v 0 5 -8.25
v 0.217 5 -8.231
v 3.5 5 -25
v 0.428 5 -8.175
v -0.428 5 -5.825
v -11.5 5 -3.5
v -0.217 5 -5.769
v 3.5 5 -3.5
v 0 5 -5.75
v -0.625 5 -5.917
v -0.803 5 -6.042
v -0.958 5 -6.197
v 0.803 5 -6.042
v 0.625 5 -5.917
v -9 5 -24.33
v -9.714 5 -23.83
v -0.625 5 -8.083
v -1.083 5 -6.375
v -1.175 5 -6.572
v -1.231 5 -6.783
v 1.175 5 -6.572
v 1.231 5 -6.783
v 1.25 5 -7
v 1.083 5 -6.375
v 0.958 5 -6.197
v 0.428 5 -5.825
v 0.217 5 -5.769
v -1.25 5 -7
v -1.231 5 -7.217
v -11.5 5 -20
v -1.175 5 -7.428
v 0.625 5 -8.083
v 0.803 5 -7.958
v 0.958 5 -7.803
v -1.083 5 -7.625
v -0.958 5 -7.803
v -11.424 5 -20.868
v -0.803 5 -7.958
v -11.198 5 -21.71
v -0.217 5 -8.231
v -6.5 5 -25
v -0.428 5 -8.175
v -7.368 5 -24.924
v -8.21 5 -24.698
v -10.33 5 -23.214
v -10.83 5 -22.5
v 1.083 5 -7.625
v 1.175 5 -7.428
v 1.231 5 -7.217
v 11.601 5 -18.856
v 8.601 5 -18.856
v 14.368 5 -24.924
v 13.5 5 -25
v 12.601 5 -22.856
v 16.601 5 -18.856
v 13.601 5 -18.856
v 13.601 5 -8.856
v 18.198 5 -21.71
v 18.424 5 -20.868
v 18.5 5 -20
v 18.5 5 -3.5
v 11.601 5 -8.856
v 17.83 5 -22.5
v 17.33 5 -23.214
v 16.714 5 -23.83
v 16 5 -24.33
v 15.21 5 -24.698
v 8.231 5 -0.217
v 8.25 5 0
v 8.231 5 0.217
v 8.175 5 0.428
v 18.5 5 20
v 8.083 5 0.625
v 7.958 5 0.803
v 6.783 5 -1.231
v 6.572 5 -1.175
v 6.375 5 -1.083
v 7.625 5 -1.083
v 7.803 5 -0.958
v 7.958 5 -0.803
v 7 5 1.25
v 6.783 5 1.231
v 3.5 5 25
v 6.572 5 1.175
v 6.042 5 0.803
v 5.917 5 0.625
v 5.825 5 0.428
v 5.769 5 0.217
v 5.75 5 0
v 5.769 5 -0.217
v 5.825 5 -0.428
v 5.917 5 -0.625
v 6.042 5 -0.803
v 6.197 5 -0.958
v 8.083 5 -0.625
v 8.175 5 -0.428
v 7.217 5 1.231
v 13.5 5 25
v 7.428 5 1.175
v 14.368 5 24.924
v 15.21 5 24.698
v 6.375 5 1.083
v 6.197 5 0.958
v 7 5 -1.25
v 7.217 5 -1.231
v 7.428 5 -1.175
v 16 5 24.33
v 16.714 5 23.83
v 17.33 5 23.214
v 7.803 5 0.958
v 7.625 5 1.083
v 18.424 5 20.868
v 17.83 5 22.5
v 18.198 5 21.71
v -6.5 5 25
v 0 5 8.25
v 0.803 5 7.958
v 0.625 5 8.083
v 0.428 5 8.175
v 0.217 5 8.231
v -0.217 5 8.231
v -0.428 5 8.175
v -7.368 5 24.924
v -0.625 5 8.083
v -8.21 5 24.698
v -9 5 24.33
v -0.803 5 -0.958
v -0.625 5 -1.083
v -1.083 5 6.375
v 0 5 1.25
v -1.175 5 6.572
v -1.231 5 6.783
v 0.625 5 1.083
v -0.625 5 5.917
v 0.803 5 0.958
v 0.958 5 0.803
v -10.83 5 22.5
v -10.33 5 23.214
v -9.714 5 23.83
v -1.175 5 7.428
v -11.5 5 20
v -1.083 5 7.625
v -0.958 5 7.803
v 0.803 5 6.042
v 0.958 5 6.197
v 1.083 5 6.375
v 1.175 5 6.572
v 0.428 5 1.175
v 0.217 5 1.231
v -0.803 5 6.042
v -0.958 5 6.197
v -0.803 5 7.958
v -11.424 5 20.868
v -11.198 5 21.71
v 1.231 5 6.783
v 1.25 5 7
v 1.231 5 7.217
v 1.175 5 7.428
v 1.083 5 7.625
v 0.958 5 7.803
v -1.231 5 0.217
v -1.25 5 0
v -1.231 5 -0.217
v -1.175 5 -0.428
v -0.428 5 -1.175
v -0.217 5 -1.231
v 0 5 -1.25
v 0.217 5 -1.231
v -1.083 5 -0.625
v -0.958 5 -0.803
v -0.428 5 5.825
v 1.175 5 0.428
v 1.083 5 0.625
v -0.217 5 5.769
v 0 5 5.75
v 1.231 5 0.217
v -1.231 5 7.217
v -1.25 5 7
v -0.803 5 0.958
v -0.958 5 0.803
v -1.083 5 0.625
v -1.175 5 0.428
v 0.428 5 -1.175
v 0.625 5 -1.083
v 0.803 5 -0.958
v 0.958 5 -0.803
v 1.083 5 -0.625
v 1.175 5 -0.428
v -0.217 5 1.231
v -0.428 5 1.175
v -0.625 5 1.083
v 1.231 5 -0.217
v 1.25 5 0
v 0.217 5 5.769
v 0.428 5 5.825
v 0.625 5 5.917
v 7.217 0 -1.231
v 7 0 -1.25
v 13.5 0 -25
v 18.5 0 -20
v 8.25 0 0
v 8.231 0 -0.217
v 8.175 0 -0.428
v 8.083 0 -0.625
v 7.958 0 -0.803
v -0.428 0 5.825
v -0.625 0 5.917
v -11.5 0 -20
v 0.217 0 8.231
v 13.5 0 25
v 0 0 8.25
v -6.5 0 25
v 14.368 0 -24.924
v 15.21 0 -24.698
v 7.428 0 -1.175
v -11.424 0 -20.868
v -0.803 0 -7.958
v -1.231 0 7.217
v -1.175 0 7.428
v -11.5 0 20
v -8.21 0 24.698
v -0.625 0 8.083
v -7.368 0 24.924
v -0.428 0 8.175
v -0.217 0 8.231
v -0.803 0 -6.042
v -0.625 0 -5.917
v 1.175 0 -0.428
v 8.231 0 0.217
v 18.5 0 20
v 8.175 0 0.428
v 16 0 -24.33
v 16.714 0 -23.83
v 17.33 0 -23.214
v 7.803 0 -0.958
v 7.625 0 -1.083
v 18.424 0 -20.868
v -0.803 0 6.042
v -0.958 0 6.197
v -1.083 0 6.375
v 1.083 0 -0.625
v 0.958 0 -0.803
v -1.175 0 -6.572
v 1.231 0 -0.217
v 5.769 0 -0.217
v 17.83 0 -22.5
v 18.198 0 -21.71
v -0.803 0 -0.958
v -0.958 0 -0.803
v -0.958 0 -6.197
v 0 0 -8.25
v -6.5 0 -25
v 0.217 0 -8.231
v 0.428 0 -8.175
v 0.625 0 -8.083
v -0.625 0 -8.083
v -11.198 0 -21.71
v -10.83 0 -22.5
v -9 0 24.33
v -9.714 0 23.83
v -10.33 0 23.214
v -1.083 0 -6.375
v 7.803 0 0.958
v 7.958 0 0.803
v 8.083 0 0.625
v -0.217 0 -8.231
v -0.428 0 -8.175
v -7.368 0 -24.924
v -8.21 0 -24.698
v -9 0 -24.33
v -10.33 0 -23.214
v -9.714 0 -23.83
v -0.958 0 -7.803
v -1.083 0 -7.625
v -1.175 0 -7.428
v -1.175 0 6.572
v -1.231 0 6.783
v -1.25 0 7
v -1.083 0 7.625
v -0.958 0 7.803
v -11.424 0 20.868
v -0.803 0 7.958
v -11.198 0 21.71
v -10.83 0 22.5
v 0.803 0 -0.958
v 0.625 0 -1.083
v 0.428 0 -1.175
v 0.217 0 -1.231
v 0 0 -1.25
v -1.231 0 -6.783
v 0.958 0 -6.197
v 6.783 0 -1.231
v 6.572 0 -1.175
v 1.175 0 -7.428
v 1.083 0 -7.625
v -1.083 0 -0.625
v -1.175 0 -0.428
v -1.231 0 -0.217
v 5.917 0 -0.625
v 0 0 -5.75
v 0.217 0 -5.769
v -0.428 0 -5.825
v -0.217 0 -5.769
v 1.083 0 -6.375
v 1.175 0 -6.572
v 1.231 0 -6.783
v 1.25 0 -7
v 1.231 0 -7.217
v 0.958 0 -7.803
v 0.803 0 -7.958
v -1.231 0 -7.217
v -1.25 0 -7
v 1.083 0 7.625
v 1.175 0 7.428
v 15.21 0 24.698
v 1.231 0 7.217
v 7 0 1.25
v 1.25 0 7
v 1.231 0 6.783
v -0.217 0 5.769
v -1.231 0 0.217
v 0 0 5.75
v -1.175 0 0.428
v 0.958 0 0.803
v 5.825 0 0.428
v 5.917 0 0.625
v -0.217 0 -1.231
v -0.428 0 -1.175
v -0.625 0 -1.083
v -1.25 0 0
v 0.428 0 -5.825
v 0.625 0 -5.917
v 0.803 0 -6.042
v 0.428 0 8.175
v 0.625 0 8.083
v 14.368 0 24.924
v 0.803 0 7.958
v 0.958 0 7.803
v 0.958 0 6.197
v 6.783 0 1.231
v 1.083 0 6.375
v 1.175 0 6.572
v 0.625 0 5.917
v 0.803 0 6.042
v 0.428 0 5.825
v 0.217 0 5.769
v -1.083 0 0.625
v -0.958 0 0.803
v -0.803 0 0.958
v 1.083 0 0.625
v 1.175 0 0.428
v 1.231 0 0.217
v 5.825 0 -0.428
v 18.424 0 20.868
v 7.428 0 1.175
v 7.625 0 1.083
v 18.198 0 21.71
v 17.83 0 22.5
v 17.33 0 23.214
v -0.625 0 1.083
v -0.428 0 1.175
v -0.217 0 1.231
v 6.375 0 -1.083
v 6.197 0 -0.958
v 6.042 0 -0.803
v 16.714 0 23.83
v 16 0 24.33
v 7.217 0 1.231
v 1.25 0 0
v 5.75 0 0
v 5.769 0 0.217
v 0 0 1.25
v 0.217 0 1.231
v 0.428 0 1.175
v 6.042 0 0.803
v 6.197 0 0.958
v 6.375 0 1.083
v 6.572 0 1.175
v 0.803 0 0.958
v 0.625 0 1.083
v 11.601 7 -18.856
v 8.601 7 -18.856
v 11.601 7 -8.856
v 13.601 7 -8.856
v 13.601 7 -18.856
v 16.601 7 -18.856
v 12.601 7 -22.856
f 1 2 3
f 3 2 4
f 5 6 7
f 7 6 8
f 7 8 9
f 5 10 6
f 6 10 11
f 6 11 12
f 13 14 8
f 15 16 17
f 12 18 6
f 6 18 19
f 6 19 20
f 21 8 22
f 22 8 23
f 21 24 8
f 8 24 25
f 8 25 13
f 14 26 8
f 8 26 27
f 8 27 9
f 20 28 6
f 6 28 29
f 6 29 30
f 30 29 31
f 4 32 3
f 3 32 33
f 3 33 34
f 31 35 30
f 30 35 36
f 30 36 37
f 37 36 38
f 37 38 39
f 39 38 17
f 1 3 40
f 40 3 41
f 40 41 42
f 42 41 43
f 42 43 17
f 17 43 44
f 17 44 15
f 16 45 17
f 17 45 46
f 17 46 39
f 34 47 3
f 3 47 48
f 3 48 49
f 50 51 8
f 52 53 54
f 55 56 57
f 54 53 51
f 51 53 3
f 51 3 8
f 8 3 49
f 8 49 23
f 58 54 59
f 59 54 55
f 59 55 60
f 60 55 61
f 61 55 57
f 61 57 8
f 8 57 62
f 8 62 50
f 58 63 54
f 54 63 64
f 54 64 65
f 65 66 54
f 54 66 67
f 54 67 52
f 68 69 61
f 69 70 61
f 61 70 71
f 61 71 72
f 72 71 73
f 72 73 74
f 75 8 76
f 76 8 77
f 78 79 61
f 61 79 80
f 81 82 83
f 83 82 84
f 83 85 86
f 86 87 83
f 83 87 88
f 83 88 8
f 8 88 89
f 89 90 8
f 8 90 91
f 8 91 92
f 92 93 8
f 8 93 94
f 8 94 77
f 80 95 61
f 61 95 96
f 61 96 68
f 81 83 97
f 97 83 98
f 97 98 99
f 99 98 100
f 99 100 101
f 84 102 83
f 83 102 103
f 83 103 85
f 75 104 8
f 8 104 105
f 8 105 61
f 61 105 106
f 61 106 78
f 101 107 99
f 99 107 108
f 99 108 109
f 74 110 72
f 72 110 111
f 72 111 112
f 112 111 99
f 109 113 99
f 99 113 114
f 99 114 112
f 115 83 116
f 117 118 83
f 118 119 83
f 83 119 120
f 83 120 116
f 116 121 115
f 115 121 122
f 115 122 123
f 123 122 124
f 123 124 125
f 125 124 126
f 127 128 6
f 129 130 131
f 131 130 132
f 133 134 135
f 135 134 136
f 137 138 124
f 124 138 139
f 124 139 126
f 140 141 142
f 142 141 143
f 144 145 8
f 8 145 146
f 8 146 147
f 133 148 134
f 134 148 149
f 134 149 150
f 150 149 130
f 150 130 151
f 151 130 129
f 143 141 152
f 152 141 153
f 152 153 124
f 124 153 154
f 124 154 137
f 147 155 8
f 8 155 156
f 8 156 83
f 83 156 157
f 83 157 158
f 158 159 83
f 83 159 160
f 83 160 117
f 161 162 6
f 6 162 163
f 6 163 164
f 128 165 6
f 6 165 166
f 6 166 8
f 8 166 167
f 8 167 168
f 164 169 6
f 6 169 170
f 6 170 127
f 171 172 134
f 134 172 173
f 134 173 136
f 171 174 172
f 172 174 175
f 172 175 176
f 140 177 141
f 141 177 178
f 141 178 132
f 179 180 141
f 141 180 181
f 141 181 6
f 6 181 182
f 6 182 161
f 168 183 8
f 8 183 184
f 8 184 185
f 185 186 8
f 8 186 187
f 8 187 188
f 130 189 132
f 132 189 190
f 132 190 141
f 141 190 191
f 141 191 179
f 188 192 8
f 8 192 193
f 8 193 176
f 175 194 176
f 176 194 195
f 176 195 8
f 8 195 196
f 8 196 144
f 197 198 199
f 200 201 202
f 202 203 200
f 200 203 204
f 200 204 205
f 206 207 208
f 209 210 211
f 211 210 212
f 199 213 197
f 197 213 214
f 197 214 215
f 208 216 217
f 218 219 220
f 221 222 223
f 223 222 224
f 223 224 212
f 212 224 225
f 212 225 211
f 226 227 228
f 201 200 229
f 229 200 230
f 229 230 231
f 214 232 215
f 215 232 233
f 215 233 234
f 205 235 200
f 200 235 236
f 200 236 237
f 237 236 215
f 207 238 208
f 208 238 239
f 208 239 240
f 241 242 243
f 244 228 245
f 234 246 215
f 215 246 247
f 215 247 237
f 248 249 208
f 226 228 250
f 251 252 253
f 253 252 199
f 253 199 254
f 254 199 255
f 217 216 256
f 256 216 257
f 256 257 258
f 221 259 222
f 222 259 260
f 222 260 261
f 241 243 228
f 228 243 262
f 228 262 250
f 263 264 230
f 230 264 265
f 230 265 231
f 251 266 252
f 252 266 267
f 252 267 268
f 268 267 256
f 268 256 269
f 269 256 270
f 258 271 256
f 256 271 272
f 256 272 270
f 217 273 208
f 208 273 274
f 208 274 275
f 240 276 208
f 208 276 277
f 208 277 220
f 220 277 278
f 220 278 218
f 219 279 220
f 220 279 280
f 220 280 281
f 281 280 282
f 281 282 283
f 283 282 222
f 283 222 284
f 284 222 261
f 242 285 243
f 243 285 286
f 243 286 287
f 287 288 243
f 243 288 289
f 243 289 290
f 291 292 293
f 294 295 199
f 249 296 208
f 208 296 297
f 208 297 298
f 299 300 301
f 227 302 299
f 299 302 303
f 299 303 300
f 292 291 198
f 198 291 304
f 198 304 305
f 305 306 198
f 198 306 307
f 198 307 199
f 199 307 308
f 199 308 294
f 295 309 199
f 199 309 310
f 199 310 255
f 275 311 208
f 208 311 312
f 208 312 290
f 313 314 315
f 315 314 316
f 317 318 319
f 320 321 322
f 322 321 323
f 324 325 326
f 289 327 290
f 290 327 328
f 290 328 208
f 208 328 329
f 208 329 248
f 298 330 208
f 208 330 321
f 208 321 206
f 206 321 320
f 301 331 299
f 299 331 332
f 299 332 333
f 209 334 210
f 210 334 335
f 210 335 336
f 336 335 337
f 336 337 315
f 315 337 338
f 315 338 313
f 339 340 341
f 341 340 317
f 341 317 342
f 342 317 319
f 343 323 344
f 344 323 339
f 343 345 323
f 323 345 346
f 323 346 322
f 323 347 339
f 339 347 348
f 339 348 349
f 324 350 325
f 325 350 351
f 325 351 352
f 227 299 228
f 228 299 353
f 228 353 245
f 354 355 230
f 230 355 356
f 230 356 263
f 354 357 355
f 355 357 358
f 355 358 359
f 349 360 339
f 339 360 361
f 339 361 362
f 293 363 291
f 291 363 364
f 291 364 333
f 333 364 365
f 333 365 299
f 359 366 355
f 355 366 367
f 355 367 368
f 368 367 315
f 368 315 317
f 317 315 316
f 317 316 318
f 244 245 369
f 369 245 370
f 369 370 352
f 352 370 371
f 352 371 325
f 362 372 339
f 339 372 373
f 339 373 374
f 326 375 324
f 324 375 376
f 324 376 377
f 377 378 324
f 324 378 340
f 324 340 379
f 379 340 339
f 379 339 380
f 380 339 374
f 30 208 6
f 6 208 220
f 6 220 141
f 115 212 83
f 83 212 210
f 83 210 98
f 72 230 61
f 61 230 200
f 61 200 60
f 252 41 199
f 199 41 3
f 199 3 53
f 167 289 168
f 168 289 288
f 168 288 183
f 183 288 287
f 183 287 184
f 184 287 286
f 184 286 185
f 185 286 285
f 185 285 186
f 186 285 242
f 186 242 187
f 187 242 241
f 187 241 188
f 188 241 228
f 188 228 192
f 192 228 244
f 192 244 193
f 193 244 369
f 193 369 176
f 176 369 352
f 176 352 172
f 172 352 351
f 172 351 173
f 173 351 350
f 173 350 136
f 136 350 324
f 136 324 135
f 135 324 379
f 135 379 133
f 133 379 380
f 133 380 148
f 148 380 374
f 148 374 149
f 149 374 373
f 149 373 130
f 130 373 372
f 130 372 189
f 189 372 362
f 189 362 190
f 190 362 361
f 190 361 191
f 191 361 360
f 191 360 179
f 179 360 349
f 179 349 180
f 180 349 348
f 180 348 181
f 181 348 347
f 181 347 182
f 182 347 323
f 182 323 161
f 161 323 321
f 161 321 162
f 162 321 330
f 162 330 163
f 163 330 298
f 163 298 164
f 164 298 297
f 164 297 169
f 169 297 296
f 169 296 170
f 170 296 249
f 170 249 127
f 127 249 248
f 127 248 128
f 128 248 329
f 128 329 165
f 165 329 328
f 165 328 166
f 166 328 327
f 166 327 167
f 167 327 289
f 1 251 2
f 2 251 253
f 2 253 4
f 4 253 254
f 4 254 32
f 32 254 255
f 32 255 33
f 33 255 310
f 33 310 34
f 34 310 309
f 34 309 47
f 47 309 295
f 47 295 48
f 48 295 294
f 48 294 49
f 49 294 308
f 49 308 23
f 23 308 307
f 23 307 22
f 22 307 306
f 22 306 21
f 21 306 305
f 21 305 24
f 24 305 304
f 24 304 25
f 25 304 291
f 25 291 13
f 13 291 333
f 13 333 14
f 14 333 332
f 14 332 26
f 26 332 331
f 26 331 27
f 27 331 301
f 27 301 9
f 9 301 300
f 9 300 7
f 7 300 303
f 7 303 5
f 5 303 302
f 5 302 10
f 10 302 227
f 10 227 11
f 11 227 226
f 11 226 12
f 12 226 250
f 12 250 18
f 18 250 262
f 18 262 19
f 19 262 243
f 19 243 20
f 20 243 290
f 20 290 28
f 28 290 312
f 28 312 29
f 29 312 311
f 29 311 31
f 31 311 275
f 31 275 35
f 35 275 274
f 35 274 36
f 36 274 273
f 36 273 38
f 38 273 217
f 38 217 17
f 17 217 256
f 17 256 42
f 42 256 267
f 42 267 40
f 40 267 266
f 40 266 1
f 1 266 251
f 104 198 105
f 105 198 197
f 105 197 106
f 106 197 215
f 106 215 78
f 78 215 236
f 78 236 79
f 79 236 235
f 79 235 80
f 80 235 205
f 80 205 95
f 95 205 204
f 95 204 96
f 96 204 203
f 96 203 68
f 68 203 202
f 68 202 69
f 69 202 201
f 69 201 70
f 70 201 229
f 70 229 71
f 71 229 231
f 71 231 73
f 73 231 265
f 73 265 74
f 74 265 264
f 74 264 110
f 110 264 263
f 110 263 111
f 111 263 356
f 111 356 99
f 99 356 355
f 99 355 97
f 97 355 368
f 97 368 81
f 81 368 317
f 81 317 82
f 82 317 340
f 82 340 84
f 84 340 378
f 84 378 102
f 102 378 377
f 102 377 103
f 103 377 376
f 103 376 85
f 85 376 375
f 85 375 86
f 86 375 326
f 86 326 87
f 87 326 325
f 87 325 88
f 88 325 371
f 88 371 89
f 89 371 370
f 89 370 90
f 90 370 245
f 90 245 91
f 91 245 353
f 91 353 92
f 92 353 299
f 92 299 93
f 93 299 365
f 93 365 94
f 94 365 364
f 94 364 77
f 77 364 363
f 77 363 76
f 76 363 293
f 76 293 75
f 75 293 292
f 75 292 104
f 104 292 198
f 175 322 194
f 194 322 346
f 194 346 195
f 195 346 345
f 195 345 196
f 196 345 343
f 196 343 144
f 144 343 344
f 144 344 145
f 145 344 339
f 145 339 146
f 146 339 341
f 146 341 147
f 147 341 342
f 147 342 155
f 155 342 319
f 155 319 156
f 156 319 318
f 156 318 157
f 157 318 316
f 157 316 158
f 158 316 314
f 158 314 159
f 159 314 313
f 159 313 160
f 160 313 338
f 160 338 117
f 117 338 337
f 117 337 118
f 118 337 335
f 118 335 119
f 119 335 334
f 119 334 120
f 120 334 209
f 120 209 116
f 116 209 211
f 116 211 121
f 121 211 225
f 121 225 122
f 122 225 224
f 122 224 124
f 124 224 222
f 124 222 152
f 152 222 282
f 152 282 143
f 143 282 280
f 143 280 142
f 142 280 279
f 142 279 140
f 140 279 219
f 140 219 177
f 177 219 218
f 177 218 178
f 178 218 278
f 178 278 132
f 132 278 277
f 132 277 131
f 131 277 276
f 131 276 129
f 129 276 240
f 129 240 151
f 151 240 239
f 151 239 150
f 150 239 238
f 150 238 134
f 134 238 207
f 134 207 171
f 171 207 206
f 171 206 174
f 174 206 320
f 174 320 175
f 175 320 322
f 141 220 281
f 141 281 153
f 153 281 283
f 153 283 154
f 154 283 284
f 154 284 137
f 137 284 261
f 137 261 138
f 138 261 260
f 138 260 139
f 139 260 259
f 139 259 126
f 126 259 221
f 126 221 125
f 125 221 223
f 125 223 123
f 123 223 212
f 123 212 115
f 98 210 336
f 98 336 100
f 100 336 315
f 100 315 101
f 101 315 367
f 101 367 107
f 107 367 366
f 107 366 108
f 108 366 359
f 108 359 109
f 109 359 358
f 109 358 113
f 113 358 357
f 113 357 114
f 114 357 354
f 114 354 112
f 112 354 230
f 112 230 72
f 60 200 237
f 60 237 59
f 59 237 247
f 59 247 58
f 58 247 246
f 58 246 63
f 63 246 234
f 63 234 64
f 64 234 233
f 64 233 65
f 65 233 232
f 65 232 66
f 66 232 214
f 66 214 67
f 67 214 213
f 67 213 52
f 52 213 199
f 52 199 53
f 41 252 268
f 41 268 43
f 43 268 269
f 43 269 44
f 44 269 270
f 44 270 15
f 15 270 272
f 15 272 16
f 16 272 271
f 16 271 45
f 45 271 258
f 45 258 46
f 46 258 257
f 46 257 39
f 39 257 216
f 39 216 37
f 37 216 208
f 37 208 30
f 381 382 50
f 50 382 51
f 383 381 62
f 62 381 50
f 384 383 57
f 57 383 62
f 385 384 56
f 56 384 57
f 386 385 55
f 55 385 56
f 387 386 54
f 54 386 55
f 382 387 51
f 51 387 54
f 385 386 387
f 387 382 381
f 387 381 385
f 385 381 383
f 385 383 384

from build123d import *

# Parameters (mm, degrees)
SKETCH1_W           = 30
SKETCH1_H           = 50
SKETCH1_R           = 1.25
BOSS_EXTRUDE1_DEPTH = 5
FILLET1_R           = 5
BOSS_EXTRUDE2_DEPTH = 2


with BuildPart() as part:
    # Sketch1 → Boss-Extrude1 (new body)
    with BuildSketch(Plane(origin=(0, 0, 0), x_dir=(1, 0, 0), z_dir=(0, 1, 0))):
        with Locations((3.5, 0)):
            Rectangle(SKETCH1_W, SKETCH1_H)
        with Locations(Location((0, 0, 0), (0, 0, 270))):
            Circle(SKETCH1_R, mode=Mode.SUBTRACT)
        with Locations(Location((0, 7, 0), (0, 0, 270))):
            Circle(SKETCH1_R, mode=Mode.SUBTRACT)
        with Locations(Location((7, 0, 0), (0, 0, 270))):
            Circle(SKETCH1_R, mode=Mode.SUBTRACT)
        with Locations(Location((0, -7, 0), (0, 0, 270))):
            Circle(SKETCH1_R, mode=Mode.SUBTRACT)
    extrude(amount=BOSS_EXTRUDE1_DEPTH)

    # Fillet1
    fillet1_edges = [part.edges().sort_by_distance(p)[0] for p in [
        (-11.5, 2.5, -25),
        (18.5, 2.5, -25),
        (18.5, 2.5, 25),
        (-11.5, 2.5, 25),
    ]]
    fillet(fillet1_edges, radius=FILLET1_R)

    # Sketch2 → Boss-Extrude2 (add)
    with BuildSketch(Plane(origin=(0, 5, 0), x_dir=(1, 0, 0), z_dir=(0, 1, 0))):
        Polygon((11.600813037, 18.856220698), (11.600813037, 8.856220698), (13.600813037, 8.856220698), (13.600813037, 18.856220698), (16.600813037, 18.856220698), (12.600813037, 22.856220698), (8.600813037, 18.856220698), align=None)
    extrude(amount=BOSS_EXTRUDE2_DEPTH)


solid = part.part
